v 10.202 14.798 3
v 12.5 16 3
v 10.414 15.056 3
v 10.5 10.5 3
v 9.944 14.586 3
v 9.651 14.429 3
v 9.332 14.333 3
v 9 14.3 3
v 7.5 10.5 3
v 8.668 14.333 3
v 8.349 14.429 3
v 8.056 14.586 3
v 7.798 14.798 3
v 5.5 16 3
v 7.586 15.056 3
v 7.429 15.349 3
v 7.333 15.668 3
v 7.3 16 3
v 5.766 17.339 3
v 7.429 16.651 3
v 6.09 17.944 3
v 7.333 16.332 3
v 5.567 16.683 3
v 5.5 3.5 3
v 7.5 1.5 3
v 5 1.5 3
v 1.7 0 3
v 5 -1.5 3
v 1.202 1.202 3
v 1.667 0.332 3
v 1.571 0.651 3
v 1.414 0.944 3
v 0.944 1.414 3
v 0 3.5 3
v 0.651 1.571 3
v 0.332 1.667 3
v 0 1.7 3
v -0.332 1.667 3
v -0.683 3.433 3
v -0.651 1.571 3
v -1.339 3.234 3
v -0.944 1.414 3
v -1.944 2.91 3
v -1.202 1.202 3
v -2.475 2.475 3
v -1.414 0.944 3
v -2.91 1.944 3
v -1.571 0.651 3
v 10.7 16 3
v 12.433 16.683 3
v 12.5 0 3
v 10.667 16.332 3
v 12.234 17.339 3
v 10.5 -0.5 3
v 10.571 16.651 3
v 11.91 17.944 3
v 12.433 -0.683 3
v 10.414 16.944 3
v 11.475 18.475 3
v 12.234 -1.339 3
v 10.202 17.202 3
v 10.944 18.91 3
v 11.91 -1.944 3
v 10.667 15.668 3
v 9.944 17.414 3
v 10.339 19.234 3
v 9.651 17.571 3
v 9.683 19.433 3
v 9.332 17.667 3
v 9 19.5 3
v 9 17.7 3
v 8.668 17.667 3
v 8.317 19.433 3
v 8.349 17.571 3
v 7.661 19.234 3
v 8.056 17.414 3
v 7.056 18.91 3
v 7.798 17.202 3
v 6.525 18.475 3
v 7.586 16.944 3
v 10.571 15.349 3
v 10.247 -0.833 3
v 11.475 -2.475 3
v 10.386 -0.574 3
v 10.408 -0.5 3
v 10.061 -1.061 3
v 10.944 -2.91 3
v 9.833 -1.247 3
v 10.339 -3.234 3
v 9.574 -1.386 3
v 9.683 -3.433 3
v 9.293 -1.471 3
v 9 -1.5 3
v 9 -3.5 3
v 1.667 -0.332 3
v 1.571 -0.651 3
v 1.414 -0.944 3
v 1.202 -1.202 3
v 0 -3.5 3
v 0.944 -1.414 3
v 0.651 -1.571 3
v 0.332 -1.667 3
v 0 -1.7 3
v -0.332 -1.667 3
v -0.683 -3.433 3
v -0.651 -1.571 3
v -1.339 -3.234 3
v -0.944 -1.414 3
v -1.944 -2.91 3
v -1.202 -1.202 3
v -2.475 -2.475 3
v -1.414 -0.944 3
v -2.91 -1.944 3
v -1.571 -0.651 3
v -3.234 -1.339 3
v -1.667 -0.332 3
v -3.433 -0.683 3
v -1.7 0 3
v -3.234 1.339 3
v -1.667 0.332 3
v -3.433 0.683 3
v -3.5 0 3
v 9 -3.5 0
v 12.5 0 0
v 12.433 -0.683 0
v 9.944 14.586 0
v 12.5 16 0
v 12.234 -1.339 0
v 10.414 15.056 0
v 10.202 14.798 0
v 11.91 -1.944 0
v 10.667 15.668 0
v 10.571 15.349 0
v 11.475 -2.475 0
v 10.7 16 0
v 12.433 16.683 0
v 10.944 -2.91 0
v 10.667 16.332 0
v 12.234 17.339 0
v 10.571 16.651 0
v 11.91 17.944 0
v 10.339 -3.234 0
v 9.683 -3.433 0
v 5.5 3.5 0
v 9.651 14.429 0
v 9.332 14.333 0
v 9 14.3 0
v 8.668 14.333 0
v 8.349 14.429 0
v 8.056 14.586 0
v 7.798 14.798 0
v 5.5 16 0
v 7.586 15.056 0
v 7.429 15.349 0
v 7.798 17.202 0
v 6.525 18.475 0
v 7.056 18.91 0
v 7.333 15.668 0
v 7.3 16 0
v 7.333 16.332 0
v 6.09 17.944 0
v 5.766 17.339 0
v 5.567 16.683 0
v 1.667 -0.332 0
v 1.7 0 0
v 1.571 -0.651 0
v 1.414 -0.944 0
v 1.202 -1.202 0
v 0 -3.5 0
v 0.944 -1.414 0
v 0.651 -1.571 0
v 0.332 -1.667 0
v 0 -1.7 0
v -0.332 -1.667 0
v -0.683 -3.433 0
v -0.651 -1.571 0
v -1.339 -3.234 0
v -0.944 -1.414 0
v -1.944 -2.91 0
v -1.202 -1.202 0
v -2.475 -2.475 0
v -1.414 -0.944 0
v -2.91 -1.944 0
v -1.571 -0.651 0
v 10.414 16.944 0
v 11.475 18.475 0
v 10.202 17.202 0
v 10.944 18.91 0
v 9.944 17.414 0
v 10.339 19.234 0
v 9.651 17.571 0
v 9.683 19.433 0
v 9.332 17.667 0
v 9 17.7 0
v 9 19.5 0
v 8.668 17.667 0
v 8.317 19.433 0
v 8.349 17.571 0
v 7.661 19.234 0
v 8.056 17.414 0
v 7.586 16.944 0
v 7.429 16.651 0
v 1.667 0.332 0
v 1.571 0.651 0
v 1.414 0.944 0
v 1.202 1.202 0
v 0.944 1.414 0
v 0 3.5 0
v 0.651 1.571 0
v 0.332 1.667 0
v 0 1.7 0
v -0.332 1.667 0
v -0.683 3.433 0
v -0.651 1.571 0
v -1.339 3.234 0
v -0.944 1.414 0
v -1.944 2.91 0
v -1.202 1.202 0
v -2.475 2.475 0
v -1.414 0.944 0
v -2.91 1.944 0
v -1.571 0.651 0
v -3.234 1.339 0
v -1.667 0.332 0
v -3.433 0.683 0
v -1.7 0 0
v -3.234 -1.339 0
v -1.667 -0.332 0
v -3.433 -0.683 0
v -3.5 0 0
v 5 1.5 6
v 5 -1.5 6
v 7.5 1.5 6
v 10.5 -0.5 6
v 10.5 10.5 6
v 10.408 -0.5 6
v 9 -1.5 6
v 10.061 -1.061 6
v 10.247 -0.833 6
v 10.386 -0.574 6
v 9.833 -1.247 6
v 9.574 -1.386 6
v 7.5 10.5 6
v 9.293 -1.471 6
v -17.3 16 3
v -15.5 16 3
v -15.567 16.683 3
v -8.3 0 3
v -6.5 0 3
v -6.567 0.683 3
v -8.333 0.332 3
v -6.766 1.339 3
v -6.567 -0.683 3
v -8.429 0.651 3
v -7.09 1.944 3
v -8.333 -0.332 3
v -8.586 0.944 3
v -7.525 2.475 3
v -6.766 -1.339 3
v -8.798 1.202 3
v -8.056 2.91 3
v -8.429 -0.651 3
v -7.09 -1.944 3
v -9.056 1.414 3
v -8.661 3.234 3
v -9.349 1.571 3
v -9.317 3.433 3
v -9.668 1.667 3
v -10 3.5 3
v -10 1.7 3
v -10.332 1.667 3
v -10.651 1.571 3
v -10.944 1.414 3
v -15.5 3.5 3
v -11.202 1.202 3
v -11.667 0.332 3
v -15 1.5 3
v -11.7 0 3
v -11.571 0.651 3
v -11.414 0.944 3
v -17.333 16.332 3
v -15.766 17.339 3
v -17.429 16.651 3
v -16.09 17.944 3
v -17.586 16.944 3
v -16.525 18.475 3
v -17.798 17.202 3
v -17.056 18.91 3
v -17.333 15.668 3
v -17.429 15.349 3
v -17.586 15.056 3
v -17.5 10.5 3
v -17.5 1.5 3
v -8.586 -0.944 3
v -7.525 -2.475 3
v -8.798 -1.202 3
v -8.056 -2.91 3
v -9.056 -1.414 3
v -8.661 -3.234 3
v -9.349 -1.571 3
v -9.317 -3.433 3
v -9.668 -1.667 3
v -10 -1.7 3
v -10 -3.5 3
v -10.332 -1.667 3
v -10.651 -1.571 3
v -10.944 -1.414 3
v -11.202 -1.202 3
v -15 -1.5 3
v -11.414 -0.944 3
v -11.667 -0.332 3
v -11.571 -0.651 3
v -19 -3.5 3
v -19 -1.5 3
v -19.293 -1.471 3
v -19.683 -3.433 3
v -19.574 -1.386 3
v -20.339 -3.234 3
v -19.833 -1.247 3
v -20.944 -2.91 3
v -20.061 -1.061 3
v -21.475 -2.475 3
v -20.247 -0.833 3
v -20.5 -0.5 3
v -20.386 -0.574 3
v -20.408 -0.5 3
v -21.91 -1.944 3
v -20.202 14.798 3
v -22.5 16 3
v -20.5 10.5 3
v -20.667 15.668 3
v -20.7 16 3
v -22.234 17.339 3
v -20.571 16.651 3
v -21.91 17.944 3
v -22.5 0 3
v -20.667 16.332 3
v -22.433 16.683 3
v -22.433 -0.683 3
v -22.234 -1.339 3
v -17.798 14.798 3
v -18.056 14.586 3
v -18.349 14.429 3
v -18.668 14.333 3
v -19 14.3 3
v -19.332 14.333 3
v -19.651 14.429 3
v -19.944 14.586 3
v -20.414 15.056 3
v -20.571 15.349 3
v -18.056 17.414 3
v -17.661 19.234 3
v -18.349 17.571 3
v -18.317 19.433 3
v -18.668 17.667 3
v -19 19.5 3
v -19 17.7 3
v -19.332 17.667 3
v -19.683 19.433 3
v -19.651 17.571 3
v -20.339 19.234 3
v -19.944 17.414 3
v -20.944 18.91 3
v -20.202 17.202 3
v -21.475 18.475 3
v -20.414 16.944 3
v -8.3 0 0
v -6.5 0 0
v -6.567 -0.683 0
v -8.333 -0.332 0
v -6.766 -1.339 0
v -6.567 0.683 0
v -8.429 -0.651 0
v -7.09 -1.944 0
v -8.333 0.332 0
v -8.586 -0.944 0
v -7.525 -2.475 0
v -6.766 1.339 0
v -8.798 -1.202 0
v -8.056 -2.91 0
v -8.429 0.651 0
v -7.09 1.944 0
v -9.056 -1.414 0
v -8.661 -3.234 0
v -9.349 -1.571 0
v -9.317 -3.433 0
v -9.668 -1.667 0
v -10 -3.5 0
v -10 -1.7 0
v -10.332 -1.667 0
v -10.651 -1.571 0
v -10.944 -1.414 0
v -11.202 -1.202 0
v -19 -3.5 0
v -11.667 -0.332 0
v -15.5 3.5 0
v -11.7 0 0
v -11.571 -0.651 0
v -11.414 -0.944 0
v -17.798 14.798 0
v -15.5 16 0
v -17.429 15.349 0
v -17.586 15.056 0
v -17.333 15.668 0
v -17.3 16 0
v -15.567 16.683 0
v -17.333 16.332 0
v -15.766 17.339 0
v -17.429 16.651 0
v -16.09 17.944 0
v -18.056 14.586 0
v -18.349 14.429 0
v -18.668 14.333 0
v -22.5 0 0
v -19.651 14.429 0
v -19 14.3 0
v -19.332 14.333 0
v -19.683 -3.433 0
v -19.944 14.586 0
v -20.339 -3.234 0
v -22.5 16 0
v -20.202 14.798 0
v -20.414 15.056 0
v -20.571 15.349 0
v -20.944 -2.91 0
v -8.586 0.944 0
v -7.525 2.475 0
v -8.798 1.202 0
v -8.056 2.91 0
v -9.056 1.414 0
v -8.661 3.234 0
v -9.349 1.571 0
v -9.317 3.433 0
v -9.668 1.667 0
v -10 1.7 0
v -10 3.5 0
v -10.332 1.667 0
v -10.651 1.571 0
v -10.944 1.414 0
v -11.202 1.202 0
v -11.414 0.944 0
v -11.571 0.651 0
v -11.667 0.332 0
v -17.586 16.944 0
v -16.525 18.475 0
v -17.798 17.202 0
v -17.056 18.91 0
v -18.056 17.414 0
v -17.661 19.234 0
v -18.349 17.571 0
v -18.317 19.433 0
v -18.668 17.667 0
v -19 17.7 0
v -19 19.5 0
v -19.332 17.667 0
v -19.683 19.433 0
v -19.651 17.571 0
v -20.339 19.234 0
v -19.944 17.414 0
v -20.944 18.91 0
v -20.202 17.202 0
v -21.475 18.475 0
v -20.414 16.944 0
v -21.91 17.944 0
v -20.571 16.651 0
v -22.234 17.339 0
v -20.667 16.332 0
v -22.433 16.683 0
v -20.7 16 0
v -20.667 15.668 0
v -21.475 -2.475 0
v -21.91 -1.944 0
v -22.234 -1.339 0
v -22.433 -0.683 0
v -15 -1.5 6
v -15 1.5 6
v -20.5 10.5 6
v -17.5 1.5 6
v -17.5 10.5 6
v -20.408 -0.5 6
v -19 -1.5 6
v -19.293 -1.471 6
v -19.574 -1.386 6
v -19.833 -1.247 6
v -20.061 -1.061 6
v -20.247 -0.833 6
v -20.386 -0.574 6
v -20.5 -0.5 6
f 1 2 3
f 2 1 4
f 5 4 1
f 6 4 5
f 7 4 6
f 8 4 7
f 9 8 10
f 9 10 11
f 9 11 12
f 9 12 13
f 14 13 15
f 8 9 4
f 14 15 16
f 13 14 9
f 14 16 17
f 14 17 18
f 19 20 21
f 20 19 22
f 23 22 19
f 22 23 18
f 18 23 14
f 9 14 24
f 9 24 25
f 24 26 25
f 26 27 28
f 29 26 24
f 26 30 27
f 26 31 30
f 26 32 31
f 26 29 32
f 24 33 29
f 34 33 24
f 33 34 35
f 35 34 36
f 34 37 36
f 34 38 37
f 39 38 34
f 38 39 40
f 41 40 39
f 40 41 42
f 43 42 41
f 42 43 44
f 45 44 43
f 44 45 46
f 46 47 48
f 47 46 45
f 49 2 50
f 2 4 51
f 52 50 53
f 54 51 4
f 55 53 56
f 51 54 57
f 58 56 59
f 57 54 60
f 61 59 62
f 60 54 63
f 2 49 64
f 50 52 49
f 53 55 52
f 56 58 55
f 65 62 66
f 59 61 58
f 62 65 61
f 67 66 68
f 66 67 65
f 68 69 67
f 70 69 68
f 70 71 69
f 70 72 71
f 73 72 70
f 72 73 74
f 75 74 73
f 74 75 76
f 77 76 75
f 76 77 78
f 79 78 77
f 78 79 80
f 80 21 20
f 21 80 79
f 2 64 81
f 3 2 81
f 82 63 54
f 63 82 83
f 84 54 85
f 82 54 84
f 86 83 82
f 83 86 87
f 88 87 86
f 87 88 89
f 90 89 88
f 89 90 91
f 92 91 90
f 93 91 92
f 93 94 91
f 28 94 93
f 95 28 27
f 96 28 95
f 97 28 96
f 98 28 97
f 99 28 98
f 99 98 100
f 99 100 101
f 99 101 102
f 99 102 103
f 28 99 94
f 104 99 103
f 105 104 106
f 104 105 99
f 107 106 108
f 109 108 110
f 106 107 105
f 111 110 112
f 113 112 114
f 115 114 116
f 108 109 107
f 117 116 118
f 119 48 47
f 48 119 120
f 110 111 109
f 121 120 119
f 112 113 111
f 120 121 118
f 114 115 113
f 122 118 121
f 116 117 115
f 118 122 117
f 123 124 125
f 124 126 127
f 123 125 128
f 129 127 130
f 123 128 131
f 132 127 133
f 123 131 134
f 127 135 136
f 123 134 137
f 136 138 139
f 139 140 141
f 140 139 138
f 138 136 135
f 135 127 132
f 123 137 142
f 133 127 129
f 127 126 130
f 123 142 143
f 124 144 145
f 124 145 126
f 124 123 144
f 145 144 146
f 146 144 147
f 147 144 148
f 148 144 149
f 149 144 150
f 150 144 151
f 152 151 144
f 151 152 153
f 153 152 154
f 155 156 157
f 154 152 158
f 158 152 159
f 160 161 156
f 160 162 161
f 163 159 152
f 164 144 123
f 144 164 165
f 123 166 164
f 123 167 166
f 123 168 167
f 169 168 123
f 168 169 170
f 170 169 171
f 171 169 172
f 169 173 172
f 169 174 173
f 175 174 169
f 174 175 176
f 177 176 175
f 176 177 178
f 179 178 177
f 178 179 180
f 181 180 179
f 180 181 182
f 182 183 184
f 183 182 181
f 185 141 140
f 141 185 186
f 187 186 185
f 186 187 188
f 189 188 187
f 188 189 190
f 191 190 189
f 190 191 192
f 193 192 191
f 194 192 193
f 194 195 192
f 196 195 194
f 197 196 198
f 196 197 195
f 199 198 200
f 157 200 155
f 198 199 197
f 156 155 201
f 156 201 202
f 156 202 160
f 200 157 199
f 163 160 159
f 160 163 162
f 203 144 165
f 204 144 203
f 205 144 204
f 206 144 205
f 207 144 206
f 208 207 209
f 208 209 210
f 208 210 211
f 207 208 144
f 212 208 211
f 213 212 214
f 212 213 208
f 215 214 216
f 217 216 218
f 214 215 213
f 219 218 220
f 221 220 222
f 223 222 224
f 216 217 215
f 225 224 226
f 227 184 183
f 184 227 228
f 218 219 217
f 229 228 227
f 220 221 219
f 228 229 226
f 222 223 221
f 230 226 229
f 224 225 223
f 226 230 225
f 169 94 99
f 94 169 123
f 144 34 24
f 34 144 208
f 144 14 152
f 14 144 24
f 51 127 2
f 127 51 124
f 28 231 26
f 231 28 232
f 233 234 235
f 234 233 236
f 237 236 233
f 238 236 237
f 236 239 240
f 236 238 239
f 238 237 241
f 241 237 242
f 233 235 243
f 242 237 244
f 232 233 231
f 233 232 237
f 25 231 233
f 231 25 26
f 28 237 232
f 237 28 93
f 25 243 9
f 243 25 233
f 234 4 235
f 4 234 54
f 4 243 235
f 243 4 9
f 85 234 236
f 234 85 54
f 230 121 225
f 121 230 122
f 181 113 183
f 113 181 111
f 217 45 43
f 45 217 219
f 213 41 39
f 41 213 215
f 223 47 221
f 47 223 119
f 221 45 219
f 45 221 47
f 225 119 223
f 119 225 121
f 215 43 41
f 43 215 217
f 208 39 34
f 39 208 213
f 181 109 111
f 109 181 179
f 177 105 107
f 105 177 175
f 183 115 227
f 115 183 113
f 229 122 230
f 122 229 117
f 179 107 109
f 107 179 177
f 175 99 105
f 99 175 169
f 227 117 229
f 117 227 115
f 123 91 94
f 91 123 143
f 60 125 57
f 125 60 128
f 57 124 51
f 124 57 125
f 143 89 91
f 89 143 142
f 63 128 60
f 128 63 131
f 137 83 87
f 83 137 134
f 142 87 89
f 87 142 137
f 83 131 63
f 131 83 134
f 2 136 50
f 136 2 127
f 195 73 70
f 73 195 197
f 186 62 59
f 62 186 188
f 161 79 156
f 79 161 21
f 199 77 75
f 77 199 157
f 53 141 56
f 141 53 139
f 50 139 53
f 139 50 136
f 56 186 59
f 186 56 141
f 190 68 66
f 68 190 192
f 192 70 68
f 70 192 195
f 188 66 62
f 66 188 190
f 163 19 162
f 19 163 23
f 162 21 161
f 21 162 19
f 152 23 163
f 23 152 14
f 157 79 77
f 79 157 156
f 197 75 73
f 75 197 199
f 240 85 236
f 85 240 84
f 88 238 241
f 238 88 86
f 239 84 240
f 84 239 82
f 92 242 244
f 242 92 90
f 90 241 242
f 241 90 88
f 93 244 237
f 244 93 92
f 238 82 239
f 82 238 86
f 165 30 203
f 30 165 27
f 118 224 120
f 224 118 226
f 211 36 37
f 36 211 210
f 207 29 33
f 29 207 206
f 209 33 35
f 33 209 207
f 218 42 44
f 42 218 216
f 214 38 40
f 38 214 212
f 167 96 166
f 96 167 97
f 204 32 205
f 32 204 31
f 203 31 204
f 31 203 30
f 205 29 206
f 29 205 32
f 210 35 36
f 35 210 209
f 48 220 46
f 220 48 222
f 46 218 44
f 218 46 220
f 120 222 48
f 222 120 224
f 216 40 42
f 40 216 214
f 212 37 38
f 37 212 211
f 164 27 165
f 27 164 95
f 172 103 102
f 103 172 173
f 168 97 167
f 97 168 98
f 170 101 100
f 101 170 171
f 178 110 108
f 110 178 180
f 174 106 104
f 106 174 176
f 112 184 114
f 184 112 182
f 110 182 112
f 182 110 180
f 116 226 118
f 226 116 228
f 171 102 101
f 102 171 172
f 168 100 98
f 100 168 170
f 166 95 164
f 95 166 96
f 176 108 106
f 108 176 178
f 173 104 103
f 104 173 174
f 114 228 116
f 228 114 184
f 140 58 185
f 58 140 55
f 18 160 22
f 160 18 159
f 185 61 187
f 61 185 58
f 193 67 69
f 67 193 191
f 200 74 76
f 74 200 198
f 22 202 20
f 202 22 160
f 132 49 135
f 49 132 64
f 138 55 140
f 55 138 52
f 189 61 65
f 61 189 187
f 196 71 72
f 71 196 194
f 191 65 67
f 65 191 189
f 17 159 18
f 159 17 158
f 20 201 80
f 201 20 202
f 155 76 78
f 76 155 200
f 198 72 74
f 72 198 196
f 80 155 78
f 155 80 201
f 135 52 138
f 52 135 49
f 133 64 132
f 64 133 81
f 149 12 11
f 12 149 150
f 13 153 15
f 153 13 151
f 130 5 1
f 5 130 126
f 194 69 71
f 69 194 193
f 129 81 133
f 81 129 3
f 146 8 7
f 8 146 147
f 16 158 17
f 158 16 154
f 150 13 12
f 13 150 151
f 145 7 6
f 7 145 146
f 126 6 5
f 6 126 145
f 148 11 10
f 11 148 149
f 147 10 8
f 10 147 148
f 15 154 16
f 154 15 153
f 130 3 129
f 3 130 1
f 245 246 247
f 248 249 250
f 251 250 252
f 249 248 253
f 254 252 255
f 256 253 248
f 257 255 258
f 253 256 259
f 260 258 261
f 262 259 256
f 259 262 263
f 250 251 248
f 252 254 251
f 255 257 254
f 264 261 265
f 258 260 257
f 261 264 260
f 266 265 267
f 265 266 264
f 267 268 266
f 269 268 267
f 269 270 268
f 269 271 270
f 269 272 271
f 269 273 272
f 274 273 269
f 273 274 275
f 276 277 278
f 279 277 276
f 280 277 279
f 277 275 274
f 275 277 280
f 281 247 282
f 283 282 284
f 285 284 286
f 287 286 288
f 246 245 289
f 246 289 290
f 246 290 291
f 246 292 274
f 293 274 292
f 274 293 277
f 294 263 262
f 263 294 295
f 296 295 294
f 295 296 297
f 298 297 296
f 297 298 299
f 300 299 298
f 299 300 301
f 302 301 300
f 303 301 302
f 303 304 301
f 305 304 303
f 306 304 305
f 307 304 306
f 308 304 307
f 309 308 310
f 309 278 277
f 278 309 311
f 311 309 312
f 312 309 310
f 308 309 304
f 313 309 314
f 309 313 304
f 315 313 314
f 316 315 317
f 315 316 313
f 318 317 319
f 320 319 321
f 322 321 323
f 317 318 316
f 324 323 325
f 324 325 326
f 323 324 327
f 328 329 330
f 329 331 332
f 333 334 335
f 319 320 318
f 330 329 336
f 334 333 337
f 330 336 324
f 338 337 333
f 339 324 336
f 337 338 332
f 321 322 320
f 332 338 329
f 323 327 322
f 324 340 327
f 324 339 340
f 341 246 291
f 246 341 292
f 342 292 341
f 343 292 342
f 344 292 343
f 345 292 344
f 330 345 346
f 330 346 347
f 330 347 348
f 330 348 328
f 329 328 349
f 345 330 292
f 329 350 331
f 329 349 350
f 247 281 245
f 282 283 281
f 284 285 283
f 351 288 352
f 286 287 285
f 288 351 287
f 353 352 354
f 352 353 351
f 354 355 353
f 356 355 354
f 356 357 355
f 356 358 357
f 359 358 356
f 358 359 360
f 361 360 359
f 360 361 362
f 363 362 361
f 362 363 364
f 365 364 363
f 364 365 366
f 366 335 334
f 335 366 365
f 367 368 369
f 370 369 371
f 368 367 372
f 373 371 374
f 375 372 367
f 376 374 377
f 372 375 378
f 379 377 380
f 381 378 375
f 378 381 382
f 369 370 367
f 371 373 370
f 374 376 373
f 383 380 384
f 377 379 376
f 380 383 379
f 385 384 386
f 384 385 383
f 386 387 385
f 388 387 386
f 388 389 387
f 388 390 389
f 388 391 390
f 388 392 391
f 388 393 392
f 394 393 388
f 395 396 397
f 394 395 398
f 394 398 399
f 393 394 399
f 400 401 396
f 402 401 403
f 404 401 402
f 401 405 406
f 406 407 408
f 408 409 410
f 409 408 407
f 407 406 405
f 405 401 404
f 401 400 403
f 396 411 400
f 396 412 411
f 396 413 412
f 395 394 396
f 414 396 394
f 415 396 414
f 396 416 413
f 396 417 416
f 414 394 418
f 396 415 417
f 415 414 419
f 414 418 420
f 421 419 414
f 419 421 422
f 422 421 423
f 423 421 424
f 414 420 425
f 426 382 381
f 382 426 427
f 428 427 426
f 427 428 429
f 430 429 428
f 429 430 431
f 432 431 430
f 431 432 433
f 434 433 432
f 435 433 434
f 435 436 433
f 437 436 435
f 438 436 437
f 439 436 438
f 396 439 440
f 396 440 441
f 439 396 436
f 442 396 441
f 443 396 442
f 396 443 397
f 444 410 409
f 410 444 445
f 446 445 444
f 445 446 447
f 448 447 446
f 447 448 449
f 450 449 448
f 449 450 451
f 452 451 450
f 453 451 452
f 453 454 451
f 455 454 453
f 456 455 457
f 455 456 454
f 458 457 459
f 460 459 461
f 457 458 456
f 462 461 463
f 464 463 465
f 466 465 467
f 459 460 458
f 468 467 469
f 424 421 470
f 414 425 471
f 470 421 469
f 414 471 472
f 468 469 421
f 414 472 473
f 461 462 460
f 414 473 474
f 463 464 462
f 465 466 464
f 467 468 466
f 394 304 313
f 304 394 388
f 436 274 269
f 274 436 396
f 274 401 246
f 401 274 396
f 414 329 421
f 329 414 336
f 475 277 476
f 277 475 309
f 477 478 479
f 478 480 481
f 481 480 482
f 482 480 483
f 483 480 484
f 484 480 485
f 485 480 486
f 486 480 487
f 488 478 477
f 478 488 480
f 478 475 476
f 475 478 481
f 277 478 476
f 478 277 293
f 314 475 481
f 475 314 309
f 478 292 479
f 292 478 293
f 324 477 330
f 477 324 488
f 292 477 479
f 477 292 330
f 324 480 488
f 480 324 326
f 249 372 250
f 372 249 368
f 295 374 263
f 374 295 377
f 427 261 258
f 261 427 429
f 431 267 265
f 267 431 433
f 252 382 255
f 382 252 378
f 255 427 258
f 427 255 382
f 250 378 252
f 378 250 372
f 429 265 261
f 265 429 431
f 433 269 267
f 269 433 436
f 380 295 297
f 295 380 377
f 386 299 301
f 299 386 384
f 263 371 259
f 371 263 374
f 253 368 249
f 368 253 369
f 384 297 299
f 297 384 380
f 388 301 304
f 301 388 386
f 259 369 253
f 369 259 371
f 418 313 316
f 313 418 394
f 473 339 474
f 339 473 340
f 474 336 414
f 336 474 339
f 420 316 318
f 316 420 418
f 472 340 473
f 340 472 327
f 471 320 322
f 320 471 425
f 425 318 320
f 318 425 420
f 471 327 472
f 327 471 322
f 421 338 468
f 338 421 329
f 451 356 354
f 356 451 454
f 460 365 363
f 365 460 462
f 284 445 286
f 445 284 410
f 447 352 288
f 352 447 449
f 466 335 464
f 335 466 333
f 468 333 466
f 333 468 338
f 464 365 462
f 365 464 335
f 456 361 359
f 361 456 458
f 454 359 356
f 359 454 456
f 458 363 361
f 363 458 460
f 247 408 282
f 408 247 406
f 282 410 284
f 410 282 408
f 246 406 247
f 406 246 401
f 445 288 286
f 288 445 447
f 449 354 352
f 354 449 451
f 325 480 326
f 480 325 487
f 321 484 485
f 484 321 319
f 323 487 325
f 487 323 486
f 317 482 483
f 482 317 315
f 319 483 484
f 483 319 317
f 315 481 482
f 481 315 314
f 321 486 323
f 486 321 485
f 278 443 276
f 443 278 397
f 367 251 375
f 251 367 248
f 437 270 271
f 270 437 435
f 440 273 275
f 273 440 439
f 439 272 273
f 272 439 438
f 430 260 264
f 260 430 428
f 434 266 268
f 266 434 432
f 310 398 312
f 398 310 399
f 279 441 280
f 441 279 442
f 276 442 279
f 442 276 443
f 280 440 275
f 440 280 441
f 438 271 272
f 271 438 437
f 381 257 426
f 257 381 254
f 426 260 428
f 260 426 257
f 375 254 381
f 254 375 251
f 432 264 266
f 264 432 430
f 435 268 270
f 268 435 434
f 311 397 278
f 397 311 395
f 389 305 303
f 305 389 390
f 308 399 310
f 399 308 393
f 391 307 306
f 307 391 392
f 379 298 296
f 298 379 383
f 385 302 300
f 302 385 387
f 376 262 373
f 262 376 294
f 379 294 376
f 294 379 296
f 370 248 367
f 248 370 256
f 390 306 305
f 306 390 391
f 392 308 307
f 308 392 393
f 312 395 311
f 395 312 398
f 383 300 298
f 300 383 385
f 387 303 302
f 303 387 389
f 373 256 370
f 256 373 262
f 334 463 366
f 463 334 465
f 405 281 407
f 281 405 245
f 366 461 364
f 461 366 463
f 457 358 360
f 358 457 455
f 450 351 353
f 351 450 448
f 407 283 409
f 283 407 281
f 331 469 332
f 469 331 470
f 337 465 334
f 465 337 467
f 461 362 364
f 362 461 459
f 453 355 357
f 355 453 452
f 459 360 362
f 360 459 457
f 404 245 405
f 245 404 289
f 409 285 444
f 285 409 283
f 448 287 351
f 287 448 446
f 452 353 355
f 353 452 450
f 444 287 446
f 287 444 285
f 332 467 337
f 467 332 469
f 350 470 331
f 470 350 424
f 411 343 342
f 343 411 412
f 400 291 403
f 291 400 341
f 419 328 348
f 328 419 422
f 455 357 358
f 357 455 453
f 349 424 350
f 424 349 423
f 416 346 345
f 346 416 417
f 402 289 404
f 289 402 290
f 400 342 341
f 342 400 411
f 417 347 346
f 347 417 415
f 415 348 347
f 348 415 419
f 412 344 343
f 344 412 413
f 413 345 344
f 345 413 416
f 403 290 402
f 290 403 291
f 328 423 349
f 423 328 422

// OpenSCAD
//-- arm1curved.scad by AndrewBCN - November 2014
//-- remix of thing #154834
//-- replaces Brazo.stl with slightly stronger part
//-- and with source file.
//-- GPL V3

arm_th=3;
len1=9;
len2=14+2;
arm_wi=7;
$fn=32;

//-- this arm variant is curved 90 degrees - useful in some cases

module arm() {
  difference() {
    // arm
    union() {
      // arm straight blocks
      translate([len1/2,0,arm_th/2]) cube([len1,arm_wi,arm_th], center=true);
      translate([len1,len2/2,arm_th/2]) cube([arm_wi,len2,arm_th], center=true);
      // this is the small reinforcement in the middle
      translate([len1-2,0,1.5*arm_th]) cube([len1-5,arm_th,arm_th], center=true);
      translate([len1,len2/2-3,1.5*arm_th]) cube([arm_th,len2-5,arm_th], center=true);
      // the two rounded ends and the rounded corner
      translate([0,0,arm_th/2]) cylinder(r=arm_wi/2, h=arm_th, center=true);
      translate([len1,0,arm_th/2]) cylinder(r=arm_wi/2, h=arm_th, center=true);
      translate([len1,len2,arm_th/2]) cylinder(r=arm_wi/2, h=arm_th, center=true);
      // reinforcement rounded corner
      translate([len1,0,1.5*arm_th]) cylinder(r=arm_th/2, h=arm_th, center=true);
    }
    // holes
    cylinder(r=3.4/2, h=3*arm_th, center=true);
    translate([9,len2,0]) cylinder(r=3.4/2, h=3*arm_th, center=true);
  }
}

// build two mirrored copies
arm();
translate([-10,0,0]) mirror([1,0,0]) arm();
